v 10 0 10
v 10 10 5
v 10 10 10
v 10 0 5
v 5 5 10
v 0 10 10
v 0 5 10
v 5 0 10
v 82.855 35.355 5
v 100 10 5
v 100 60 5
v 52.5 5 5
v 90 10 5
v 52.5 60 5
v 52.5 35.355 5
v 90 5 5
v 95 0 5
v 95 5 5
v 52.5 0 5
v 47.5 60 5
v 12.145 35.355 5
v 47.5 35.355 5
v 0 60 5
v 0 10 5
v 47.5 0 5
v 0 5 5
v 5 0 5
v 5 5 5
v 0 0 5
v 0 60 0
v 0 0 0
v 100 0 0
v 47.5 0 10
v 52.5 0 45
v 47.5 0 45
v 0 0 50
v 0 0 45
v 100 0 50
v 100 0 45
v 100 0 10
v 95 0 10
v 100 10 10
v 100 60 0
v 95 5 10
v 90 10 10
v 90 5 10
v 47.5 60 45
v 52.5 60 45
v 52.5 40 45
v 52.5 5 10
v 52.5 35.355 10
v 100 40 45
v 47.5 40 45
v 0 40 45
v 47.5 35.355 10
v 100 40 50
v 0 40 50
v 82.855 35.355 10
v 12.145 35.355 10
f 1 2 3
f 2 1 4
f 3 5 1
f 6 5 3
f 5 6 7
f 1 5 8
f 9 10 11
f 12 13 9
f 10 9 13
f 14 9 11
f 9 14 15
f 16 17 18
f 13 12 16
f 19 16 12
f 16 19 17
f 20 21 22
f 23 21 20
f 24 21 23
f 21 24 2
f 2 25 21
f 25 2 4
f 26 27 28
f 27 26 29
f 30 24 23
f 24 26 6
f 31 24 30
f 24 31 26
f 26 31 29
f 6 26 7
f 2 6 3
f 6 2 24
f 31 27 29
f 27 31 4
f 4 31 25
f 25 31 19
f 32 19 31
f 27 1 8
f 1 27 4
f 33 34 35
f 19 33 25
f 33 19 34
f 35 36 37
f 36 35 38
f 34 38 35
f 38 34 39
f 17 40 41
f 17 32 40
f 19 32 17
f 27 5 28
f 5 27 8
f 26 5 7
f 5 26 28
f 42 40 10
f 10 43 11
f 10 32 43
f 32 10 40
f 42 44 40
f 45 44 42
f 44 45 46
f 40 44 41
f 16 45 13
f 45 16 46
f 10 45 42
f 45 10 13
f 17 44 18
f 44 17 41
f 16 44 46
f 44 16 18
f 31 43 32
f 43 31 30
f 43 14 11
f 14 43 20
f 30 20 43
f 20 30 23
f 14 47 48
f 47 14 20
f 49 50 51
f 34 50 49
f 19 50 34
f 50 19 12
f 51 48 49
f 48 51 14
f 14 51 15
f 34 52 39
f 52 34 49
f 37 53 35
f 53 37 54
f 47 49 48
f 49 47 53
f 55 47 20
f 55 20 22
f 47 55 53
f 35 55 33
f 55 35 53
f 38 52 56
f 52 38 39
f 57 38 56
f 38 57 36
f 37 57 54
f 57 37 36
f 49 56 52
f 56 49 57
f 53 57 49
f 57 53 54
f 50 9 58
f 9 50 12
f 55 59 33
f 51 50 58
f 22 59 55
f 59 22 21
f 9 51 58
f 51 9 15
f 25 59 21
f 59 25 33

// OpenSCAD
// Define dimensions for components
base_plate_length = 100;
base_plate_width = 60;
base_plate_thickness = 5;

vertical_plate_length = 60;
vertical_plate_height = 40;
vertical_plate_thickness = 5;

horizontal_plate_length = 100;
horizontal_plate_width = 40;
horizontal_plate_thickness = 5;

corner_connector_length = 10;
corner_connector_width = 10;
corner_connector_thickness = 5;

diagonal_support_length = 50;
diagonal_support_thickness = 5;

// Base Plate
module base_plate() {
    // Adjusted to ensure a smooth rectangular surface
    cube([base_plate_length, base_plate_width, base_plate_thickness]);
}

// Vertical Plate
module vertical_plate() {
    // Adjusted to ensure a consistent rectangular shape and height
    translate([base_plate_length / 2 - vertical_plate_thickness / 2, 0, base_plate_thickness])
    cube([vertical_plate_thickness, vertical_plate_length, vertical_plate_height]);
}

// Horizontal Plate
module horizontal_plate() {
    // Adjusted to ensure proper positioning and a simple rectangular shape
    translate([0, 0, base_plate_thickness + vertical_plate_height])
    cube([horizontal_plate_length, horizontal_plate_width, horizontal_plate_thickness]);
}

// Corner Connector
module corner_connector() {
    // Adjusted to match the original L-shaped design
    difference() {
        cube([corner_connector_length, corner_connector_width, corner_connector_thickness]);
        translate([0, 0, 0])
        cube([corner_connector_length / 2, corner_connector_width / 2, corner_connector_thickness + 1]);
    }
}

// Diagonal Support
module diagonal_support() {
    // Adjusted to ensure the correct angle and proportions
    translate([base_plate_length / 2 - diagonal_support_thickness / 2, 0, base_plate_thickness])
    rotate([0, 0, 45])
    linear_extrude(height=diagonal_support_thickness)
    polygon(points=[[0, 0], [diagonal_support_length, 0], [0, diagonal_support_length]]);
}

// Assemble the model
module flexible_coupling() {
    base_plate();
    vertical_plate();
    horizontal_plate();
    
    // Corner Connectors
    translate([0, 0, base_plate_thickness])
    corner_connector();
    translate([base_plate_length - corner_connector_length, 0, base_plate_thickness])
    corner_connector();
    
    // Diagonal Support
    diagonal_support();
}

// Render the model
flexible_coupling();
